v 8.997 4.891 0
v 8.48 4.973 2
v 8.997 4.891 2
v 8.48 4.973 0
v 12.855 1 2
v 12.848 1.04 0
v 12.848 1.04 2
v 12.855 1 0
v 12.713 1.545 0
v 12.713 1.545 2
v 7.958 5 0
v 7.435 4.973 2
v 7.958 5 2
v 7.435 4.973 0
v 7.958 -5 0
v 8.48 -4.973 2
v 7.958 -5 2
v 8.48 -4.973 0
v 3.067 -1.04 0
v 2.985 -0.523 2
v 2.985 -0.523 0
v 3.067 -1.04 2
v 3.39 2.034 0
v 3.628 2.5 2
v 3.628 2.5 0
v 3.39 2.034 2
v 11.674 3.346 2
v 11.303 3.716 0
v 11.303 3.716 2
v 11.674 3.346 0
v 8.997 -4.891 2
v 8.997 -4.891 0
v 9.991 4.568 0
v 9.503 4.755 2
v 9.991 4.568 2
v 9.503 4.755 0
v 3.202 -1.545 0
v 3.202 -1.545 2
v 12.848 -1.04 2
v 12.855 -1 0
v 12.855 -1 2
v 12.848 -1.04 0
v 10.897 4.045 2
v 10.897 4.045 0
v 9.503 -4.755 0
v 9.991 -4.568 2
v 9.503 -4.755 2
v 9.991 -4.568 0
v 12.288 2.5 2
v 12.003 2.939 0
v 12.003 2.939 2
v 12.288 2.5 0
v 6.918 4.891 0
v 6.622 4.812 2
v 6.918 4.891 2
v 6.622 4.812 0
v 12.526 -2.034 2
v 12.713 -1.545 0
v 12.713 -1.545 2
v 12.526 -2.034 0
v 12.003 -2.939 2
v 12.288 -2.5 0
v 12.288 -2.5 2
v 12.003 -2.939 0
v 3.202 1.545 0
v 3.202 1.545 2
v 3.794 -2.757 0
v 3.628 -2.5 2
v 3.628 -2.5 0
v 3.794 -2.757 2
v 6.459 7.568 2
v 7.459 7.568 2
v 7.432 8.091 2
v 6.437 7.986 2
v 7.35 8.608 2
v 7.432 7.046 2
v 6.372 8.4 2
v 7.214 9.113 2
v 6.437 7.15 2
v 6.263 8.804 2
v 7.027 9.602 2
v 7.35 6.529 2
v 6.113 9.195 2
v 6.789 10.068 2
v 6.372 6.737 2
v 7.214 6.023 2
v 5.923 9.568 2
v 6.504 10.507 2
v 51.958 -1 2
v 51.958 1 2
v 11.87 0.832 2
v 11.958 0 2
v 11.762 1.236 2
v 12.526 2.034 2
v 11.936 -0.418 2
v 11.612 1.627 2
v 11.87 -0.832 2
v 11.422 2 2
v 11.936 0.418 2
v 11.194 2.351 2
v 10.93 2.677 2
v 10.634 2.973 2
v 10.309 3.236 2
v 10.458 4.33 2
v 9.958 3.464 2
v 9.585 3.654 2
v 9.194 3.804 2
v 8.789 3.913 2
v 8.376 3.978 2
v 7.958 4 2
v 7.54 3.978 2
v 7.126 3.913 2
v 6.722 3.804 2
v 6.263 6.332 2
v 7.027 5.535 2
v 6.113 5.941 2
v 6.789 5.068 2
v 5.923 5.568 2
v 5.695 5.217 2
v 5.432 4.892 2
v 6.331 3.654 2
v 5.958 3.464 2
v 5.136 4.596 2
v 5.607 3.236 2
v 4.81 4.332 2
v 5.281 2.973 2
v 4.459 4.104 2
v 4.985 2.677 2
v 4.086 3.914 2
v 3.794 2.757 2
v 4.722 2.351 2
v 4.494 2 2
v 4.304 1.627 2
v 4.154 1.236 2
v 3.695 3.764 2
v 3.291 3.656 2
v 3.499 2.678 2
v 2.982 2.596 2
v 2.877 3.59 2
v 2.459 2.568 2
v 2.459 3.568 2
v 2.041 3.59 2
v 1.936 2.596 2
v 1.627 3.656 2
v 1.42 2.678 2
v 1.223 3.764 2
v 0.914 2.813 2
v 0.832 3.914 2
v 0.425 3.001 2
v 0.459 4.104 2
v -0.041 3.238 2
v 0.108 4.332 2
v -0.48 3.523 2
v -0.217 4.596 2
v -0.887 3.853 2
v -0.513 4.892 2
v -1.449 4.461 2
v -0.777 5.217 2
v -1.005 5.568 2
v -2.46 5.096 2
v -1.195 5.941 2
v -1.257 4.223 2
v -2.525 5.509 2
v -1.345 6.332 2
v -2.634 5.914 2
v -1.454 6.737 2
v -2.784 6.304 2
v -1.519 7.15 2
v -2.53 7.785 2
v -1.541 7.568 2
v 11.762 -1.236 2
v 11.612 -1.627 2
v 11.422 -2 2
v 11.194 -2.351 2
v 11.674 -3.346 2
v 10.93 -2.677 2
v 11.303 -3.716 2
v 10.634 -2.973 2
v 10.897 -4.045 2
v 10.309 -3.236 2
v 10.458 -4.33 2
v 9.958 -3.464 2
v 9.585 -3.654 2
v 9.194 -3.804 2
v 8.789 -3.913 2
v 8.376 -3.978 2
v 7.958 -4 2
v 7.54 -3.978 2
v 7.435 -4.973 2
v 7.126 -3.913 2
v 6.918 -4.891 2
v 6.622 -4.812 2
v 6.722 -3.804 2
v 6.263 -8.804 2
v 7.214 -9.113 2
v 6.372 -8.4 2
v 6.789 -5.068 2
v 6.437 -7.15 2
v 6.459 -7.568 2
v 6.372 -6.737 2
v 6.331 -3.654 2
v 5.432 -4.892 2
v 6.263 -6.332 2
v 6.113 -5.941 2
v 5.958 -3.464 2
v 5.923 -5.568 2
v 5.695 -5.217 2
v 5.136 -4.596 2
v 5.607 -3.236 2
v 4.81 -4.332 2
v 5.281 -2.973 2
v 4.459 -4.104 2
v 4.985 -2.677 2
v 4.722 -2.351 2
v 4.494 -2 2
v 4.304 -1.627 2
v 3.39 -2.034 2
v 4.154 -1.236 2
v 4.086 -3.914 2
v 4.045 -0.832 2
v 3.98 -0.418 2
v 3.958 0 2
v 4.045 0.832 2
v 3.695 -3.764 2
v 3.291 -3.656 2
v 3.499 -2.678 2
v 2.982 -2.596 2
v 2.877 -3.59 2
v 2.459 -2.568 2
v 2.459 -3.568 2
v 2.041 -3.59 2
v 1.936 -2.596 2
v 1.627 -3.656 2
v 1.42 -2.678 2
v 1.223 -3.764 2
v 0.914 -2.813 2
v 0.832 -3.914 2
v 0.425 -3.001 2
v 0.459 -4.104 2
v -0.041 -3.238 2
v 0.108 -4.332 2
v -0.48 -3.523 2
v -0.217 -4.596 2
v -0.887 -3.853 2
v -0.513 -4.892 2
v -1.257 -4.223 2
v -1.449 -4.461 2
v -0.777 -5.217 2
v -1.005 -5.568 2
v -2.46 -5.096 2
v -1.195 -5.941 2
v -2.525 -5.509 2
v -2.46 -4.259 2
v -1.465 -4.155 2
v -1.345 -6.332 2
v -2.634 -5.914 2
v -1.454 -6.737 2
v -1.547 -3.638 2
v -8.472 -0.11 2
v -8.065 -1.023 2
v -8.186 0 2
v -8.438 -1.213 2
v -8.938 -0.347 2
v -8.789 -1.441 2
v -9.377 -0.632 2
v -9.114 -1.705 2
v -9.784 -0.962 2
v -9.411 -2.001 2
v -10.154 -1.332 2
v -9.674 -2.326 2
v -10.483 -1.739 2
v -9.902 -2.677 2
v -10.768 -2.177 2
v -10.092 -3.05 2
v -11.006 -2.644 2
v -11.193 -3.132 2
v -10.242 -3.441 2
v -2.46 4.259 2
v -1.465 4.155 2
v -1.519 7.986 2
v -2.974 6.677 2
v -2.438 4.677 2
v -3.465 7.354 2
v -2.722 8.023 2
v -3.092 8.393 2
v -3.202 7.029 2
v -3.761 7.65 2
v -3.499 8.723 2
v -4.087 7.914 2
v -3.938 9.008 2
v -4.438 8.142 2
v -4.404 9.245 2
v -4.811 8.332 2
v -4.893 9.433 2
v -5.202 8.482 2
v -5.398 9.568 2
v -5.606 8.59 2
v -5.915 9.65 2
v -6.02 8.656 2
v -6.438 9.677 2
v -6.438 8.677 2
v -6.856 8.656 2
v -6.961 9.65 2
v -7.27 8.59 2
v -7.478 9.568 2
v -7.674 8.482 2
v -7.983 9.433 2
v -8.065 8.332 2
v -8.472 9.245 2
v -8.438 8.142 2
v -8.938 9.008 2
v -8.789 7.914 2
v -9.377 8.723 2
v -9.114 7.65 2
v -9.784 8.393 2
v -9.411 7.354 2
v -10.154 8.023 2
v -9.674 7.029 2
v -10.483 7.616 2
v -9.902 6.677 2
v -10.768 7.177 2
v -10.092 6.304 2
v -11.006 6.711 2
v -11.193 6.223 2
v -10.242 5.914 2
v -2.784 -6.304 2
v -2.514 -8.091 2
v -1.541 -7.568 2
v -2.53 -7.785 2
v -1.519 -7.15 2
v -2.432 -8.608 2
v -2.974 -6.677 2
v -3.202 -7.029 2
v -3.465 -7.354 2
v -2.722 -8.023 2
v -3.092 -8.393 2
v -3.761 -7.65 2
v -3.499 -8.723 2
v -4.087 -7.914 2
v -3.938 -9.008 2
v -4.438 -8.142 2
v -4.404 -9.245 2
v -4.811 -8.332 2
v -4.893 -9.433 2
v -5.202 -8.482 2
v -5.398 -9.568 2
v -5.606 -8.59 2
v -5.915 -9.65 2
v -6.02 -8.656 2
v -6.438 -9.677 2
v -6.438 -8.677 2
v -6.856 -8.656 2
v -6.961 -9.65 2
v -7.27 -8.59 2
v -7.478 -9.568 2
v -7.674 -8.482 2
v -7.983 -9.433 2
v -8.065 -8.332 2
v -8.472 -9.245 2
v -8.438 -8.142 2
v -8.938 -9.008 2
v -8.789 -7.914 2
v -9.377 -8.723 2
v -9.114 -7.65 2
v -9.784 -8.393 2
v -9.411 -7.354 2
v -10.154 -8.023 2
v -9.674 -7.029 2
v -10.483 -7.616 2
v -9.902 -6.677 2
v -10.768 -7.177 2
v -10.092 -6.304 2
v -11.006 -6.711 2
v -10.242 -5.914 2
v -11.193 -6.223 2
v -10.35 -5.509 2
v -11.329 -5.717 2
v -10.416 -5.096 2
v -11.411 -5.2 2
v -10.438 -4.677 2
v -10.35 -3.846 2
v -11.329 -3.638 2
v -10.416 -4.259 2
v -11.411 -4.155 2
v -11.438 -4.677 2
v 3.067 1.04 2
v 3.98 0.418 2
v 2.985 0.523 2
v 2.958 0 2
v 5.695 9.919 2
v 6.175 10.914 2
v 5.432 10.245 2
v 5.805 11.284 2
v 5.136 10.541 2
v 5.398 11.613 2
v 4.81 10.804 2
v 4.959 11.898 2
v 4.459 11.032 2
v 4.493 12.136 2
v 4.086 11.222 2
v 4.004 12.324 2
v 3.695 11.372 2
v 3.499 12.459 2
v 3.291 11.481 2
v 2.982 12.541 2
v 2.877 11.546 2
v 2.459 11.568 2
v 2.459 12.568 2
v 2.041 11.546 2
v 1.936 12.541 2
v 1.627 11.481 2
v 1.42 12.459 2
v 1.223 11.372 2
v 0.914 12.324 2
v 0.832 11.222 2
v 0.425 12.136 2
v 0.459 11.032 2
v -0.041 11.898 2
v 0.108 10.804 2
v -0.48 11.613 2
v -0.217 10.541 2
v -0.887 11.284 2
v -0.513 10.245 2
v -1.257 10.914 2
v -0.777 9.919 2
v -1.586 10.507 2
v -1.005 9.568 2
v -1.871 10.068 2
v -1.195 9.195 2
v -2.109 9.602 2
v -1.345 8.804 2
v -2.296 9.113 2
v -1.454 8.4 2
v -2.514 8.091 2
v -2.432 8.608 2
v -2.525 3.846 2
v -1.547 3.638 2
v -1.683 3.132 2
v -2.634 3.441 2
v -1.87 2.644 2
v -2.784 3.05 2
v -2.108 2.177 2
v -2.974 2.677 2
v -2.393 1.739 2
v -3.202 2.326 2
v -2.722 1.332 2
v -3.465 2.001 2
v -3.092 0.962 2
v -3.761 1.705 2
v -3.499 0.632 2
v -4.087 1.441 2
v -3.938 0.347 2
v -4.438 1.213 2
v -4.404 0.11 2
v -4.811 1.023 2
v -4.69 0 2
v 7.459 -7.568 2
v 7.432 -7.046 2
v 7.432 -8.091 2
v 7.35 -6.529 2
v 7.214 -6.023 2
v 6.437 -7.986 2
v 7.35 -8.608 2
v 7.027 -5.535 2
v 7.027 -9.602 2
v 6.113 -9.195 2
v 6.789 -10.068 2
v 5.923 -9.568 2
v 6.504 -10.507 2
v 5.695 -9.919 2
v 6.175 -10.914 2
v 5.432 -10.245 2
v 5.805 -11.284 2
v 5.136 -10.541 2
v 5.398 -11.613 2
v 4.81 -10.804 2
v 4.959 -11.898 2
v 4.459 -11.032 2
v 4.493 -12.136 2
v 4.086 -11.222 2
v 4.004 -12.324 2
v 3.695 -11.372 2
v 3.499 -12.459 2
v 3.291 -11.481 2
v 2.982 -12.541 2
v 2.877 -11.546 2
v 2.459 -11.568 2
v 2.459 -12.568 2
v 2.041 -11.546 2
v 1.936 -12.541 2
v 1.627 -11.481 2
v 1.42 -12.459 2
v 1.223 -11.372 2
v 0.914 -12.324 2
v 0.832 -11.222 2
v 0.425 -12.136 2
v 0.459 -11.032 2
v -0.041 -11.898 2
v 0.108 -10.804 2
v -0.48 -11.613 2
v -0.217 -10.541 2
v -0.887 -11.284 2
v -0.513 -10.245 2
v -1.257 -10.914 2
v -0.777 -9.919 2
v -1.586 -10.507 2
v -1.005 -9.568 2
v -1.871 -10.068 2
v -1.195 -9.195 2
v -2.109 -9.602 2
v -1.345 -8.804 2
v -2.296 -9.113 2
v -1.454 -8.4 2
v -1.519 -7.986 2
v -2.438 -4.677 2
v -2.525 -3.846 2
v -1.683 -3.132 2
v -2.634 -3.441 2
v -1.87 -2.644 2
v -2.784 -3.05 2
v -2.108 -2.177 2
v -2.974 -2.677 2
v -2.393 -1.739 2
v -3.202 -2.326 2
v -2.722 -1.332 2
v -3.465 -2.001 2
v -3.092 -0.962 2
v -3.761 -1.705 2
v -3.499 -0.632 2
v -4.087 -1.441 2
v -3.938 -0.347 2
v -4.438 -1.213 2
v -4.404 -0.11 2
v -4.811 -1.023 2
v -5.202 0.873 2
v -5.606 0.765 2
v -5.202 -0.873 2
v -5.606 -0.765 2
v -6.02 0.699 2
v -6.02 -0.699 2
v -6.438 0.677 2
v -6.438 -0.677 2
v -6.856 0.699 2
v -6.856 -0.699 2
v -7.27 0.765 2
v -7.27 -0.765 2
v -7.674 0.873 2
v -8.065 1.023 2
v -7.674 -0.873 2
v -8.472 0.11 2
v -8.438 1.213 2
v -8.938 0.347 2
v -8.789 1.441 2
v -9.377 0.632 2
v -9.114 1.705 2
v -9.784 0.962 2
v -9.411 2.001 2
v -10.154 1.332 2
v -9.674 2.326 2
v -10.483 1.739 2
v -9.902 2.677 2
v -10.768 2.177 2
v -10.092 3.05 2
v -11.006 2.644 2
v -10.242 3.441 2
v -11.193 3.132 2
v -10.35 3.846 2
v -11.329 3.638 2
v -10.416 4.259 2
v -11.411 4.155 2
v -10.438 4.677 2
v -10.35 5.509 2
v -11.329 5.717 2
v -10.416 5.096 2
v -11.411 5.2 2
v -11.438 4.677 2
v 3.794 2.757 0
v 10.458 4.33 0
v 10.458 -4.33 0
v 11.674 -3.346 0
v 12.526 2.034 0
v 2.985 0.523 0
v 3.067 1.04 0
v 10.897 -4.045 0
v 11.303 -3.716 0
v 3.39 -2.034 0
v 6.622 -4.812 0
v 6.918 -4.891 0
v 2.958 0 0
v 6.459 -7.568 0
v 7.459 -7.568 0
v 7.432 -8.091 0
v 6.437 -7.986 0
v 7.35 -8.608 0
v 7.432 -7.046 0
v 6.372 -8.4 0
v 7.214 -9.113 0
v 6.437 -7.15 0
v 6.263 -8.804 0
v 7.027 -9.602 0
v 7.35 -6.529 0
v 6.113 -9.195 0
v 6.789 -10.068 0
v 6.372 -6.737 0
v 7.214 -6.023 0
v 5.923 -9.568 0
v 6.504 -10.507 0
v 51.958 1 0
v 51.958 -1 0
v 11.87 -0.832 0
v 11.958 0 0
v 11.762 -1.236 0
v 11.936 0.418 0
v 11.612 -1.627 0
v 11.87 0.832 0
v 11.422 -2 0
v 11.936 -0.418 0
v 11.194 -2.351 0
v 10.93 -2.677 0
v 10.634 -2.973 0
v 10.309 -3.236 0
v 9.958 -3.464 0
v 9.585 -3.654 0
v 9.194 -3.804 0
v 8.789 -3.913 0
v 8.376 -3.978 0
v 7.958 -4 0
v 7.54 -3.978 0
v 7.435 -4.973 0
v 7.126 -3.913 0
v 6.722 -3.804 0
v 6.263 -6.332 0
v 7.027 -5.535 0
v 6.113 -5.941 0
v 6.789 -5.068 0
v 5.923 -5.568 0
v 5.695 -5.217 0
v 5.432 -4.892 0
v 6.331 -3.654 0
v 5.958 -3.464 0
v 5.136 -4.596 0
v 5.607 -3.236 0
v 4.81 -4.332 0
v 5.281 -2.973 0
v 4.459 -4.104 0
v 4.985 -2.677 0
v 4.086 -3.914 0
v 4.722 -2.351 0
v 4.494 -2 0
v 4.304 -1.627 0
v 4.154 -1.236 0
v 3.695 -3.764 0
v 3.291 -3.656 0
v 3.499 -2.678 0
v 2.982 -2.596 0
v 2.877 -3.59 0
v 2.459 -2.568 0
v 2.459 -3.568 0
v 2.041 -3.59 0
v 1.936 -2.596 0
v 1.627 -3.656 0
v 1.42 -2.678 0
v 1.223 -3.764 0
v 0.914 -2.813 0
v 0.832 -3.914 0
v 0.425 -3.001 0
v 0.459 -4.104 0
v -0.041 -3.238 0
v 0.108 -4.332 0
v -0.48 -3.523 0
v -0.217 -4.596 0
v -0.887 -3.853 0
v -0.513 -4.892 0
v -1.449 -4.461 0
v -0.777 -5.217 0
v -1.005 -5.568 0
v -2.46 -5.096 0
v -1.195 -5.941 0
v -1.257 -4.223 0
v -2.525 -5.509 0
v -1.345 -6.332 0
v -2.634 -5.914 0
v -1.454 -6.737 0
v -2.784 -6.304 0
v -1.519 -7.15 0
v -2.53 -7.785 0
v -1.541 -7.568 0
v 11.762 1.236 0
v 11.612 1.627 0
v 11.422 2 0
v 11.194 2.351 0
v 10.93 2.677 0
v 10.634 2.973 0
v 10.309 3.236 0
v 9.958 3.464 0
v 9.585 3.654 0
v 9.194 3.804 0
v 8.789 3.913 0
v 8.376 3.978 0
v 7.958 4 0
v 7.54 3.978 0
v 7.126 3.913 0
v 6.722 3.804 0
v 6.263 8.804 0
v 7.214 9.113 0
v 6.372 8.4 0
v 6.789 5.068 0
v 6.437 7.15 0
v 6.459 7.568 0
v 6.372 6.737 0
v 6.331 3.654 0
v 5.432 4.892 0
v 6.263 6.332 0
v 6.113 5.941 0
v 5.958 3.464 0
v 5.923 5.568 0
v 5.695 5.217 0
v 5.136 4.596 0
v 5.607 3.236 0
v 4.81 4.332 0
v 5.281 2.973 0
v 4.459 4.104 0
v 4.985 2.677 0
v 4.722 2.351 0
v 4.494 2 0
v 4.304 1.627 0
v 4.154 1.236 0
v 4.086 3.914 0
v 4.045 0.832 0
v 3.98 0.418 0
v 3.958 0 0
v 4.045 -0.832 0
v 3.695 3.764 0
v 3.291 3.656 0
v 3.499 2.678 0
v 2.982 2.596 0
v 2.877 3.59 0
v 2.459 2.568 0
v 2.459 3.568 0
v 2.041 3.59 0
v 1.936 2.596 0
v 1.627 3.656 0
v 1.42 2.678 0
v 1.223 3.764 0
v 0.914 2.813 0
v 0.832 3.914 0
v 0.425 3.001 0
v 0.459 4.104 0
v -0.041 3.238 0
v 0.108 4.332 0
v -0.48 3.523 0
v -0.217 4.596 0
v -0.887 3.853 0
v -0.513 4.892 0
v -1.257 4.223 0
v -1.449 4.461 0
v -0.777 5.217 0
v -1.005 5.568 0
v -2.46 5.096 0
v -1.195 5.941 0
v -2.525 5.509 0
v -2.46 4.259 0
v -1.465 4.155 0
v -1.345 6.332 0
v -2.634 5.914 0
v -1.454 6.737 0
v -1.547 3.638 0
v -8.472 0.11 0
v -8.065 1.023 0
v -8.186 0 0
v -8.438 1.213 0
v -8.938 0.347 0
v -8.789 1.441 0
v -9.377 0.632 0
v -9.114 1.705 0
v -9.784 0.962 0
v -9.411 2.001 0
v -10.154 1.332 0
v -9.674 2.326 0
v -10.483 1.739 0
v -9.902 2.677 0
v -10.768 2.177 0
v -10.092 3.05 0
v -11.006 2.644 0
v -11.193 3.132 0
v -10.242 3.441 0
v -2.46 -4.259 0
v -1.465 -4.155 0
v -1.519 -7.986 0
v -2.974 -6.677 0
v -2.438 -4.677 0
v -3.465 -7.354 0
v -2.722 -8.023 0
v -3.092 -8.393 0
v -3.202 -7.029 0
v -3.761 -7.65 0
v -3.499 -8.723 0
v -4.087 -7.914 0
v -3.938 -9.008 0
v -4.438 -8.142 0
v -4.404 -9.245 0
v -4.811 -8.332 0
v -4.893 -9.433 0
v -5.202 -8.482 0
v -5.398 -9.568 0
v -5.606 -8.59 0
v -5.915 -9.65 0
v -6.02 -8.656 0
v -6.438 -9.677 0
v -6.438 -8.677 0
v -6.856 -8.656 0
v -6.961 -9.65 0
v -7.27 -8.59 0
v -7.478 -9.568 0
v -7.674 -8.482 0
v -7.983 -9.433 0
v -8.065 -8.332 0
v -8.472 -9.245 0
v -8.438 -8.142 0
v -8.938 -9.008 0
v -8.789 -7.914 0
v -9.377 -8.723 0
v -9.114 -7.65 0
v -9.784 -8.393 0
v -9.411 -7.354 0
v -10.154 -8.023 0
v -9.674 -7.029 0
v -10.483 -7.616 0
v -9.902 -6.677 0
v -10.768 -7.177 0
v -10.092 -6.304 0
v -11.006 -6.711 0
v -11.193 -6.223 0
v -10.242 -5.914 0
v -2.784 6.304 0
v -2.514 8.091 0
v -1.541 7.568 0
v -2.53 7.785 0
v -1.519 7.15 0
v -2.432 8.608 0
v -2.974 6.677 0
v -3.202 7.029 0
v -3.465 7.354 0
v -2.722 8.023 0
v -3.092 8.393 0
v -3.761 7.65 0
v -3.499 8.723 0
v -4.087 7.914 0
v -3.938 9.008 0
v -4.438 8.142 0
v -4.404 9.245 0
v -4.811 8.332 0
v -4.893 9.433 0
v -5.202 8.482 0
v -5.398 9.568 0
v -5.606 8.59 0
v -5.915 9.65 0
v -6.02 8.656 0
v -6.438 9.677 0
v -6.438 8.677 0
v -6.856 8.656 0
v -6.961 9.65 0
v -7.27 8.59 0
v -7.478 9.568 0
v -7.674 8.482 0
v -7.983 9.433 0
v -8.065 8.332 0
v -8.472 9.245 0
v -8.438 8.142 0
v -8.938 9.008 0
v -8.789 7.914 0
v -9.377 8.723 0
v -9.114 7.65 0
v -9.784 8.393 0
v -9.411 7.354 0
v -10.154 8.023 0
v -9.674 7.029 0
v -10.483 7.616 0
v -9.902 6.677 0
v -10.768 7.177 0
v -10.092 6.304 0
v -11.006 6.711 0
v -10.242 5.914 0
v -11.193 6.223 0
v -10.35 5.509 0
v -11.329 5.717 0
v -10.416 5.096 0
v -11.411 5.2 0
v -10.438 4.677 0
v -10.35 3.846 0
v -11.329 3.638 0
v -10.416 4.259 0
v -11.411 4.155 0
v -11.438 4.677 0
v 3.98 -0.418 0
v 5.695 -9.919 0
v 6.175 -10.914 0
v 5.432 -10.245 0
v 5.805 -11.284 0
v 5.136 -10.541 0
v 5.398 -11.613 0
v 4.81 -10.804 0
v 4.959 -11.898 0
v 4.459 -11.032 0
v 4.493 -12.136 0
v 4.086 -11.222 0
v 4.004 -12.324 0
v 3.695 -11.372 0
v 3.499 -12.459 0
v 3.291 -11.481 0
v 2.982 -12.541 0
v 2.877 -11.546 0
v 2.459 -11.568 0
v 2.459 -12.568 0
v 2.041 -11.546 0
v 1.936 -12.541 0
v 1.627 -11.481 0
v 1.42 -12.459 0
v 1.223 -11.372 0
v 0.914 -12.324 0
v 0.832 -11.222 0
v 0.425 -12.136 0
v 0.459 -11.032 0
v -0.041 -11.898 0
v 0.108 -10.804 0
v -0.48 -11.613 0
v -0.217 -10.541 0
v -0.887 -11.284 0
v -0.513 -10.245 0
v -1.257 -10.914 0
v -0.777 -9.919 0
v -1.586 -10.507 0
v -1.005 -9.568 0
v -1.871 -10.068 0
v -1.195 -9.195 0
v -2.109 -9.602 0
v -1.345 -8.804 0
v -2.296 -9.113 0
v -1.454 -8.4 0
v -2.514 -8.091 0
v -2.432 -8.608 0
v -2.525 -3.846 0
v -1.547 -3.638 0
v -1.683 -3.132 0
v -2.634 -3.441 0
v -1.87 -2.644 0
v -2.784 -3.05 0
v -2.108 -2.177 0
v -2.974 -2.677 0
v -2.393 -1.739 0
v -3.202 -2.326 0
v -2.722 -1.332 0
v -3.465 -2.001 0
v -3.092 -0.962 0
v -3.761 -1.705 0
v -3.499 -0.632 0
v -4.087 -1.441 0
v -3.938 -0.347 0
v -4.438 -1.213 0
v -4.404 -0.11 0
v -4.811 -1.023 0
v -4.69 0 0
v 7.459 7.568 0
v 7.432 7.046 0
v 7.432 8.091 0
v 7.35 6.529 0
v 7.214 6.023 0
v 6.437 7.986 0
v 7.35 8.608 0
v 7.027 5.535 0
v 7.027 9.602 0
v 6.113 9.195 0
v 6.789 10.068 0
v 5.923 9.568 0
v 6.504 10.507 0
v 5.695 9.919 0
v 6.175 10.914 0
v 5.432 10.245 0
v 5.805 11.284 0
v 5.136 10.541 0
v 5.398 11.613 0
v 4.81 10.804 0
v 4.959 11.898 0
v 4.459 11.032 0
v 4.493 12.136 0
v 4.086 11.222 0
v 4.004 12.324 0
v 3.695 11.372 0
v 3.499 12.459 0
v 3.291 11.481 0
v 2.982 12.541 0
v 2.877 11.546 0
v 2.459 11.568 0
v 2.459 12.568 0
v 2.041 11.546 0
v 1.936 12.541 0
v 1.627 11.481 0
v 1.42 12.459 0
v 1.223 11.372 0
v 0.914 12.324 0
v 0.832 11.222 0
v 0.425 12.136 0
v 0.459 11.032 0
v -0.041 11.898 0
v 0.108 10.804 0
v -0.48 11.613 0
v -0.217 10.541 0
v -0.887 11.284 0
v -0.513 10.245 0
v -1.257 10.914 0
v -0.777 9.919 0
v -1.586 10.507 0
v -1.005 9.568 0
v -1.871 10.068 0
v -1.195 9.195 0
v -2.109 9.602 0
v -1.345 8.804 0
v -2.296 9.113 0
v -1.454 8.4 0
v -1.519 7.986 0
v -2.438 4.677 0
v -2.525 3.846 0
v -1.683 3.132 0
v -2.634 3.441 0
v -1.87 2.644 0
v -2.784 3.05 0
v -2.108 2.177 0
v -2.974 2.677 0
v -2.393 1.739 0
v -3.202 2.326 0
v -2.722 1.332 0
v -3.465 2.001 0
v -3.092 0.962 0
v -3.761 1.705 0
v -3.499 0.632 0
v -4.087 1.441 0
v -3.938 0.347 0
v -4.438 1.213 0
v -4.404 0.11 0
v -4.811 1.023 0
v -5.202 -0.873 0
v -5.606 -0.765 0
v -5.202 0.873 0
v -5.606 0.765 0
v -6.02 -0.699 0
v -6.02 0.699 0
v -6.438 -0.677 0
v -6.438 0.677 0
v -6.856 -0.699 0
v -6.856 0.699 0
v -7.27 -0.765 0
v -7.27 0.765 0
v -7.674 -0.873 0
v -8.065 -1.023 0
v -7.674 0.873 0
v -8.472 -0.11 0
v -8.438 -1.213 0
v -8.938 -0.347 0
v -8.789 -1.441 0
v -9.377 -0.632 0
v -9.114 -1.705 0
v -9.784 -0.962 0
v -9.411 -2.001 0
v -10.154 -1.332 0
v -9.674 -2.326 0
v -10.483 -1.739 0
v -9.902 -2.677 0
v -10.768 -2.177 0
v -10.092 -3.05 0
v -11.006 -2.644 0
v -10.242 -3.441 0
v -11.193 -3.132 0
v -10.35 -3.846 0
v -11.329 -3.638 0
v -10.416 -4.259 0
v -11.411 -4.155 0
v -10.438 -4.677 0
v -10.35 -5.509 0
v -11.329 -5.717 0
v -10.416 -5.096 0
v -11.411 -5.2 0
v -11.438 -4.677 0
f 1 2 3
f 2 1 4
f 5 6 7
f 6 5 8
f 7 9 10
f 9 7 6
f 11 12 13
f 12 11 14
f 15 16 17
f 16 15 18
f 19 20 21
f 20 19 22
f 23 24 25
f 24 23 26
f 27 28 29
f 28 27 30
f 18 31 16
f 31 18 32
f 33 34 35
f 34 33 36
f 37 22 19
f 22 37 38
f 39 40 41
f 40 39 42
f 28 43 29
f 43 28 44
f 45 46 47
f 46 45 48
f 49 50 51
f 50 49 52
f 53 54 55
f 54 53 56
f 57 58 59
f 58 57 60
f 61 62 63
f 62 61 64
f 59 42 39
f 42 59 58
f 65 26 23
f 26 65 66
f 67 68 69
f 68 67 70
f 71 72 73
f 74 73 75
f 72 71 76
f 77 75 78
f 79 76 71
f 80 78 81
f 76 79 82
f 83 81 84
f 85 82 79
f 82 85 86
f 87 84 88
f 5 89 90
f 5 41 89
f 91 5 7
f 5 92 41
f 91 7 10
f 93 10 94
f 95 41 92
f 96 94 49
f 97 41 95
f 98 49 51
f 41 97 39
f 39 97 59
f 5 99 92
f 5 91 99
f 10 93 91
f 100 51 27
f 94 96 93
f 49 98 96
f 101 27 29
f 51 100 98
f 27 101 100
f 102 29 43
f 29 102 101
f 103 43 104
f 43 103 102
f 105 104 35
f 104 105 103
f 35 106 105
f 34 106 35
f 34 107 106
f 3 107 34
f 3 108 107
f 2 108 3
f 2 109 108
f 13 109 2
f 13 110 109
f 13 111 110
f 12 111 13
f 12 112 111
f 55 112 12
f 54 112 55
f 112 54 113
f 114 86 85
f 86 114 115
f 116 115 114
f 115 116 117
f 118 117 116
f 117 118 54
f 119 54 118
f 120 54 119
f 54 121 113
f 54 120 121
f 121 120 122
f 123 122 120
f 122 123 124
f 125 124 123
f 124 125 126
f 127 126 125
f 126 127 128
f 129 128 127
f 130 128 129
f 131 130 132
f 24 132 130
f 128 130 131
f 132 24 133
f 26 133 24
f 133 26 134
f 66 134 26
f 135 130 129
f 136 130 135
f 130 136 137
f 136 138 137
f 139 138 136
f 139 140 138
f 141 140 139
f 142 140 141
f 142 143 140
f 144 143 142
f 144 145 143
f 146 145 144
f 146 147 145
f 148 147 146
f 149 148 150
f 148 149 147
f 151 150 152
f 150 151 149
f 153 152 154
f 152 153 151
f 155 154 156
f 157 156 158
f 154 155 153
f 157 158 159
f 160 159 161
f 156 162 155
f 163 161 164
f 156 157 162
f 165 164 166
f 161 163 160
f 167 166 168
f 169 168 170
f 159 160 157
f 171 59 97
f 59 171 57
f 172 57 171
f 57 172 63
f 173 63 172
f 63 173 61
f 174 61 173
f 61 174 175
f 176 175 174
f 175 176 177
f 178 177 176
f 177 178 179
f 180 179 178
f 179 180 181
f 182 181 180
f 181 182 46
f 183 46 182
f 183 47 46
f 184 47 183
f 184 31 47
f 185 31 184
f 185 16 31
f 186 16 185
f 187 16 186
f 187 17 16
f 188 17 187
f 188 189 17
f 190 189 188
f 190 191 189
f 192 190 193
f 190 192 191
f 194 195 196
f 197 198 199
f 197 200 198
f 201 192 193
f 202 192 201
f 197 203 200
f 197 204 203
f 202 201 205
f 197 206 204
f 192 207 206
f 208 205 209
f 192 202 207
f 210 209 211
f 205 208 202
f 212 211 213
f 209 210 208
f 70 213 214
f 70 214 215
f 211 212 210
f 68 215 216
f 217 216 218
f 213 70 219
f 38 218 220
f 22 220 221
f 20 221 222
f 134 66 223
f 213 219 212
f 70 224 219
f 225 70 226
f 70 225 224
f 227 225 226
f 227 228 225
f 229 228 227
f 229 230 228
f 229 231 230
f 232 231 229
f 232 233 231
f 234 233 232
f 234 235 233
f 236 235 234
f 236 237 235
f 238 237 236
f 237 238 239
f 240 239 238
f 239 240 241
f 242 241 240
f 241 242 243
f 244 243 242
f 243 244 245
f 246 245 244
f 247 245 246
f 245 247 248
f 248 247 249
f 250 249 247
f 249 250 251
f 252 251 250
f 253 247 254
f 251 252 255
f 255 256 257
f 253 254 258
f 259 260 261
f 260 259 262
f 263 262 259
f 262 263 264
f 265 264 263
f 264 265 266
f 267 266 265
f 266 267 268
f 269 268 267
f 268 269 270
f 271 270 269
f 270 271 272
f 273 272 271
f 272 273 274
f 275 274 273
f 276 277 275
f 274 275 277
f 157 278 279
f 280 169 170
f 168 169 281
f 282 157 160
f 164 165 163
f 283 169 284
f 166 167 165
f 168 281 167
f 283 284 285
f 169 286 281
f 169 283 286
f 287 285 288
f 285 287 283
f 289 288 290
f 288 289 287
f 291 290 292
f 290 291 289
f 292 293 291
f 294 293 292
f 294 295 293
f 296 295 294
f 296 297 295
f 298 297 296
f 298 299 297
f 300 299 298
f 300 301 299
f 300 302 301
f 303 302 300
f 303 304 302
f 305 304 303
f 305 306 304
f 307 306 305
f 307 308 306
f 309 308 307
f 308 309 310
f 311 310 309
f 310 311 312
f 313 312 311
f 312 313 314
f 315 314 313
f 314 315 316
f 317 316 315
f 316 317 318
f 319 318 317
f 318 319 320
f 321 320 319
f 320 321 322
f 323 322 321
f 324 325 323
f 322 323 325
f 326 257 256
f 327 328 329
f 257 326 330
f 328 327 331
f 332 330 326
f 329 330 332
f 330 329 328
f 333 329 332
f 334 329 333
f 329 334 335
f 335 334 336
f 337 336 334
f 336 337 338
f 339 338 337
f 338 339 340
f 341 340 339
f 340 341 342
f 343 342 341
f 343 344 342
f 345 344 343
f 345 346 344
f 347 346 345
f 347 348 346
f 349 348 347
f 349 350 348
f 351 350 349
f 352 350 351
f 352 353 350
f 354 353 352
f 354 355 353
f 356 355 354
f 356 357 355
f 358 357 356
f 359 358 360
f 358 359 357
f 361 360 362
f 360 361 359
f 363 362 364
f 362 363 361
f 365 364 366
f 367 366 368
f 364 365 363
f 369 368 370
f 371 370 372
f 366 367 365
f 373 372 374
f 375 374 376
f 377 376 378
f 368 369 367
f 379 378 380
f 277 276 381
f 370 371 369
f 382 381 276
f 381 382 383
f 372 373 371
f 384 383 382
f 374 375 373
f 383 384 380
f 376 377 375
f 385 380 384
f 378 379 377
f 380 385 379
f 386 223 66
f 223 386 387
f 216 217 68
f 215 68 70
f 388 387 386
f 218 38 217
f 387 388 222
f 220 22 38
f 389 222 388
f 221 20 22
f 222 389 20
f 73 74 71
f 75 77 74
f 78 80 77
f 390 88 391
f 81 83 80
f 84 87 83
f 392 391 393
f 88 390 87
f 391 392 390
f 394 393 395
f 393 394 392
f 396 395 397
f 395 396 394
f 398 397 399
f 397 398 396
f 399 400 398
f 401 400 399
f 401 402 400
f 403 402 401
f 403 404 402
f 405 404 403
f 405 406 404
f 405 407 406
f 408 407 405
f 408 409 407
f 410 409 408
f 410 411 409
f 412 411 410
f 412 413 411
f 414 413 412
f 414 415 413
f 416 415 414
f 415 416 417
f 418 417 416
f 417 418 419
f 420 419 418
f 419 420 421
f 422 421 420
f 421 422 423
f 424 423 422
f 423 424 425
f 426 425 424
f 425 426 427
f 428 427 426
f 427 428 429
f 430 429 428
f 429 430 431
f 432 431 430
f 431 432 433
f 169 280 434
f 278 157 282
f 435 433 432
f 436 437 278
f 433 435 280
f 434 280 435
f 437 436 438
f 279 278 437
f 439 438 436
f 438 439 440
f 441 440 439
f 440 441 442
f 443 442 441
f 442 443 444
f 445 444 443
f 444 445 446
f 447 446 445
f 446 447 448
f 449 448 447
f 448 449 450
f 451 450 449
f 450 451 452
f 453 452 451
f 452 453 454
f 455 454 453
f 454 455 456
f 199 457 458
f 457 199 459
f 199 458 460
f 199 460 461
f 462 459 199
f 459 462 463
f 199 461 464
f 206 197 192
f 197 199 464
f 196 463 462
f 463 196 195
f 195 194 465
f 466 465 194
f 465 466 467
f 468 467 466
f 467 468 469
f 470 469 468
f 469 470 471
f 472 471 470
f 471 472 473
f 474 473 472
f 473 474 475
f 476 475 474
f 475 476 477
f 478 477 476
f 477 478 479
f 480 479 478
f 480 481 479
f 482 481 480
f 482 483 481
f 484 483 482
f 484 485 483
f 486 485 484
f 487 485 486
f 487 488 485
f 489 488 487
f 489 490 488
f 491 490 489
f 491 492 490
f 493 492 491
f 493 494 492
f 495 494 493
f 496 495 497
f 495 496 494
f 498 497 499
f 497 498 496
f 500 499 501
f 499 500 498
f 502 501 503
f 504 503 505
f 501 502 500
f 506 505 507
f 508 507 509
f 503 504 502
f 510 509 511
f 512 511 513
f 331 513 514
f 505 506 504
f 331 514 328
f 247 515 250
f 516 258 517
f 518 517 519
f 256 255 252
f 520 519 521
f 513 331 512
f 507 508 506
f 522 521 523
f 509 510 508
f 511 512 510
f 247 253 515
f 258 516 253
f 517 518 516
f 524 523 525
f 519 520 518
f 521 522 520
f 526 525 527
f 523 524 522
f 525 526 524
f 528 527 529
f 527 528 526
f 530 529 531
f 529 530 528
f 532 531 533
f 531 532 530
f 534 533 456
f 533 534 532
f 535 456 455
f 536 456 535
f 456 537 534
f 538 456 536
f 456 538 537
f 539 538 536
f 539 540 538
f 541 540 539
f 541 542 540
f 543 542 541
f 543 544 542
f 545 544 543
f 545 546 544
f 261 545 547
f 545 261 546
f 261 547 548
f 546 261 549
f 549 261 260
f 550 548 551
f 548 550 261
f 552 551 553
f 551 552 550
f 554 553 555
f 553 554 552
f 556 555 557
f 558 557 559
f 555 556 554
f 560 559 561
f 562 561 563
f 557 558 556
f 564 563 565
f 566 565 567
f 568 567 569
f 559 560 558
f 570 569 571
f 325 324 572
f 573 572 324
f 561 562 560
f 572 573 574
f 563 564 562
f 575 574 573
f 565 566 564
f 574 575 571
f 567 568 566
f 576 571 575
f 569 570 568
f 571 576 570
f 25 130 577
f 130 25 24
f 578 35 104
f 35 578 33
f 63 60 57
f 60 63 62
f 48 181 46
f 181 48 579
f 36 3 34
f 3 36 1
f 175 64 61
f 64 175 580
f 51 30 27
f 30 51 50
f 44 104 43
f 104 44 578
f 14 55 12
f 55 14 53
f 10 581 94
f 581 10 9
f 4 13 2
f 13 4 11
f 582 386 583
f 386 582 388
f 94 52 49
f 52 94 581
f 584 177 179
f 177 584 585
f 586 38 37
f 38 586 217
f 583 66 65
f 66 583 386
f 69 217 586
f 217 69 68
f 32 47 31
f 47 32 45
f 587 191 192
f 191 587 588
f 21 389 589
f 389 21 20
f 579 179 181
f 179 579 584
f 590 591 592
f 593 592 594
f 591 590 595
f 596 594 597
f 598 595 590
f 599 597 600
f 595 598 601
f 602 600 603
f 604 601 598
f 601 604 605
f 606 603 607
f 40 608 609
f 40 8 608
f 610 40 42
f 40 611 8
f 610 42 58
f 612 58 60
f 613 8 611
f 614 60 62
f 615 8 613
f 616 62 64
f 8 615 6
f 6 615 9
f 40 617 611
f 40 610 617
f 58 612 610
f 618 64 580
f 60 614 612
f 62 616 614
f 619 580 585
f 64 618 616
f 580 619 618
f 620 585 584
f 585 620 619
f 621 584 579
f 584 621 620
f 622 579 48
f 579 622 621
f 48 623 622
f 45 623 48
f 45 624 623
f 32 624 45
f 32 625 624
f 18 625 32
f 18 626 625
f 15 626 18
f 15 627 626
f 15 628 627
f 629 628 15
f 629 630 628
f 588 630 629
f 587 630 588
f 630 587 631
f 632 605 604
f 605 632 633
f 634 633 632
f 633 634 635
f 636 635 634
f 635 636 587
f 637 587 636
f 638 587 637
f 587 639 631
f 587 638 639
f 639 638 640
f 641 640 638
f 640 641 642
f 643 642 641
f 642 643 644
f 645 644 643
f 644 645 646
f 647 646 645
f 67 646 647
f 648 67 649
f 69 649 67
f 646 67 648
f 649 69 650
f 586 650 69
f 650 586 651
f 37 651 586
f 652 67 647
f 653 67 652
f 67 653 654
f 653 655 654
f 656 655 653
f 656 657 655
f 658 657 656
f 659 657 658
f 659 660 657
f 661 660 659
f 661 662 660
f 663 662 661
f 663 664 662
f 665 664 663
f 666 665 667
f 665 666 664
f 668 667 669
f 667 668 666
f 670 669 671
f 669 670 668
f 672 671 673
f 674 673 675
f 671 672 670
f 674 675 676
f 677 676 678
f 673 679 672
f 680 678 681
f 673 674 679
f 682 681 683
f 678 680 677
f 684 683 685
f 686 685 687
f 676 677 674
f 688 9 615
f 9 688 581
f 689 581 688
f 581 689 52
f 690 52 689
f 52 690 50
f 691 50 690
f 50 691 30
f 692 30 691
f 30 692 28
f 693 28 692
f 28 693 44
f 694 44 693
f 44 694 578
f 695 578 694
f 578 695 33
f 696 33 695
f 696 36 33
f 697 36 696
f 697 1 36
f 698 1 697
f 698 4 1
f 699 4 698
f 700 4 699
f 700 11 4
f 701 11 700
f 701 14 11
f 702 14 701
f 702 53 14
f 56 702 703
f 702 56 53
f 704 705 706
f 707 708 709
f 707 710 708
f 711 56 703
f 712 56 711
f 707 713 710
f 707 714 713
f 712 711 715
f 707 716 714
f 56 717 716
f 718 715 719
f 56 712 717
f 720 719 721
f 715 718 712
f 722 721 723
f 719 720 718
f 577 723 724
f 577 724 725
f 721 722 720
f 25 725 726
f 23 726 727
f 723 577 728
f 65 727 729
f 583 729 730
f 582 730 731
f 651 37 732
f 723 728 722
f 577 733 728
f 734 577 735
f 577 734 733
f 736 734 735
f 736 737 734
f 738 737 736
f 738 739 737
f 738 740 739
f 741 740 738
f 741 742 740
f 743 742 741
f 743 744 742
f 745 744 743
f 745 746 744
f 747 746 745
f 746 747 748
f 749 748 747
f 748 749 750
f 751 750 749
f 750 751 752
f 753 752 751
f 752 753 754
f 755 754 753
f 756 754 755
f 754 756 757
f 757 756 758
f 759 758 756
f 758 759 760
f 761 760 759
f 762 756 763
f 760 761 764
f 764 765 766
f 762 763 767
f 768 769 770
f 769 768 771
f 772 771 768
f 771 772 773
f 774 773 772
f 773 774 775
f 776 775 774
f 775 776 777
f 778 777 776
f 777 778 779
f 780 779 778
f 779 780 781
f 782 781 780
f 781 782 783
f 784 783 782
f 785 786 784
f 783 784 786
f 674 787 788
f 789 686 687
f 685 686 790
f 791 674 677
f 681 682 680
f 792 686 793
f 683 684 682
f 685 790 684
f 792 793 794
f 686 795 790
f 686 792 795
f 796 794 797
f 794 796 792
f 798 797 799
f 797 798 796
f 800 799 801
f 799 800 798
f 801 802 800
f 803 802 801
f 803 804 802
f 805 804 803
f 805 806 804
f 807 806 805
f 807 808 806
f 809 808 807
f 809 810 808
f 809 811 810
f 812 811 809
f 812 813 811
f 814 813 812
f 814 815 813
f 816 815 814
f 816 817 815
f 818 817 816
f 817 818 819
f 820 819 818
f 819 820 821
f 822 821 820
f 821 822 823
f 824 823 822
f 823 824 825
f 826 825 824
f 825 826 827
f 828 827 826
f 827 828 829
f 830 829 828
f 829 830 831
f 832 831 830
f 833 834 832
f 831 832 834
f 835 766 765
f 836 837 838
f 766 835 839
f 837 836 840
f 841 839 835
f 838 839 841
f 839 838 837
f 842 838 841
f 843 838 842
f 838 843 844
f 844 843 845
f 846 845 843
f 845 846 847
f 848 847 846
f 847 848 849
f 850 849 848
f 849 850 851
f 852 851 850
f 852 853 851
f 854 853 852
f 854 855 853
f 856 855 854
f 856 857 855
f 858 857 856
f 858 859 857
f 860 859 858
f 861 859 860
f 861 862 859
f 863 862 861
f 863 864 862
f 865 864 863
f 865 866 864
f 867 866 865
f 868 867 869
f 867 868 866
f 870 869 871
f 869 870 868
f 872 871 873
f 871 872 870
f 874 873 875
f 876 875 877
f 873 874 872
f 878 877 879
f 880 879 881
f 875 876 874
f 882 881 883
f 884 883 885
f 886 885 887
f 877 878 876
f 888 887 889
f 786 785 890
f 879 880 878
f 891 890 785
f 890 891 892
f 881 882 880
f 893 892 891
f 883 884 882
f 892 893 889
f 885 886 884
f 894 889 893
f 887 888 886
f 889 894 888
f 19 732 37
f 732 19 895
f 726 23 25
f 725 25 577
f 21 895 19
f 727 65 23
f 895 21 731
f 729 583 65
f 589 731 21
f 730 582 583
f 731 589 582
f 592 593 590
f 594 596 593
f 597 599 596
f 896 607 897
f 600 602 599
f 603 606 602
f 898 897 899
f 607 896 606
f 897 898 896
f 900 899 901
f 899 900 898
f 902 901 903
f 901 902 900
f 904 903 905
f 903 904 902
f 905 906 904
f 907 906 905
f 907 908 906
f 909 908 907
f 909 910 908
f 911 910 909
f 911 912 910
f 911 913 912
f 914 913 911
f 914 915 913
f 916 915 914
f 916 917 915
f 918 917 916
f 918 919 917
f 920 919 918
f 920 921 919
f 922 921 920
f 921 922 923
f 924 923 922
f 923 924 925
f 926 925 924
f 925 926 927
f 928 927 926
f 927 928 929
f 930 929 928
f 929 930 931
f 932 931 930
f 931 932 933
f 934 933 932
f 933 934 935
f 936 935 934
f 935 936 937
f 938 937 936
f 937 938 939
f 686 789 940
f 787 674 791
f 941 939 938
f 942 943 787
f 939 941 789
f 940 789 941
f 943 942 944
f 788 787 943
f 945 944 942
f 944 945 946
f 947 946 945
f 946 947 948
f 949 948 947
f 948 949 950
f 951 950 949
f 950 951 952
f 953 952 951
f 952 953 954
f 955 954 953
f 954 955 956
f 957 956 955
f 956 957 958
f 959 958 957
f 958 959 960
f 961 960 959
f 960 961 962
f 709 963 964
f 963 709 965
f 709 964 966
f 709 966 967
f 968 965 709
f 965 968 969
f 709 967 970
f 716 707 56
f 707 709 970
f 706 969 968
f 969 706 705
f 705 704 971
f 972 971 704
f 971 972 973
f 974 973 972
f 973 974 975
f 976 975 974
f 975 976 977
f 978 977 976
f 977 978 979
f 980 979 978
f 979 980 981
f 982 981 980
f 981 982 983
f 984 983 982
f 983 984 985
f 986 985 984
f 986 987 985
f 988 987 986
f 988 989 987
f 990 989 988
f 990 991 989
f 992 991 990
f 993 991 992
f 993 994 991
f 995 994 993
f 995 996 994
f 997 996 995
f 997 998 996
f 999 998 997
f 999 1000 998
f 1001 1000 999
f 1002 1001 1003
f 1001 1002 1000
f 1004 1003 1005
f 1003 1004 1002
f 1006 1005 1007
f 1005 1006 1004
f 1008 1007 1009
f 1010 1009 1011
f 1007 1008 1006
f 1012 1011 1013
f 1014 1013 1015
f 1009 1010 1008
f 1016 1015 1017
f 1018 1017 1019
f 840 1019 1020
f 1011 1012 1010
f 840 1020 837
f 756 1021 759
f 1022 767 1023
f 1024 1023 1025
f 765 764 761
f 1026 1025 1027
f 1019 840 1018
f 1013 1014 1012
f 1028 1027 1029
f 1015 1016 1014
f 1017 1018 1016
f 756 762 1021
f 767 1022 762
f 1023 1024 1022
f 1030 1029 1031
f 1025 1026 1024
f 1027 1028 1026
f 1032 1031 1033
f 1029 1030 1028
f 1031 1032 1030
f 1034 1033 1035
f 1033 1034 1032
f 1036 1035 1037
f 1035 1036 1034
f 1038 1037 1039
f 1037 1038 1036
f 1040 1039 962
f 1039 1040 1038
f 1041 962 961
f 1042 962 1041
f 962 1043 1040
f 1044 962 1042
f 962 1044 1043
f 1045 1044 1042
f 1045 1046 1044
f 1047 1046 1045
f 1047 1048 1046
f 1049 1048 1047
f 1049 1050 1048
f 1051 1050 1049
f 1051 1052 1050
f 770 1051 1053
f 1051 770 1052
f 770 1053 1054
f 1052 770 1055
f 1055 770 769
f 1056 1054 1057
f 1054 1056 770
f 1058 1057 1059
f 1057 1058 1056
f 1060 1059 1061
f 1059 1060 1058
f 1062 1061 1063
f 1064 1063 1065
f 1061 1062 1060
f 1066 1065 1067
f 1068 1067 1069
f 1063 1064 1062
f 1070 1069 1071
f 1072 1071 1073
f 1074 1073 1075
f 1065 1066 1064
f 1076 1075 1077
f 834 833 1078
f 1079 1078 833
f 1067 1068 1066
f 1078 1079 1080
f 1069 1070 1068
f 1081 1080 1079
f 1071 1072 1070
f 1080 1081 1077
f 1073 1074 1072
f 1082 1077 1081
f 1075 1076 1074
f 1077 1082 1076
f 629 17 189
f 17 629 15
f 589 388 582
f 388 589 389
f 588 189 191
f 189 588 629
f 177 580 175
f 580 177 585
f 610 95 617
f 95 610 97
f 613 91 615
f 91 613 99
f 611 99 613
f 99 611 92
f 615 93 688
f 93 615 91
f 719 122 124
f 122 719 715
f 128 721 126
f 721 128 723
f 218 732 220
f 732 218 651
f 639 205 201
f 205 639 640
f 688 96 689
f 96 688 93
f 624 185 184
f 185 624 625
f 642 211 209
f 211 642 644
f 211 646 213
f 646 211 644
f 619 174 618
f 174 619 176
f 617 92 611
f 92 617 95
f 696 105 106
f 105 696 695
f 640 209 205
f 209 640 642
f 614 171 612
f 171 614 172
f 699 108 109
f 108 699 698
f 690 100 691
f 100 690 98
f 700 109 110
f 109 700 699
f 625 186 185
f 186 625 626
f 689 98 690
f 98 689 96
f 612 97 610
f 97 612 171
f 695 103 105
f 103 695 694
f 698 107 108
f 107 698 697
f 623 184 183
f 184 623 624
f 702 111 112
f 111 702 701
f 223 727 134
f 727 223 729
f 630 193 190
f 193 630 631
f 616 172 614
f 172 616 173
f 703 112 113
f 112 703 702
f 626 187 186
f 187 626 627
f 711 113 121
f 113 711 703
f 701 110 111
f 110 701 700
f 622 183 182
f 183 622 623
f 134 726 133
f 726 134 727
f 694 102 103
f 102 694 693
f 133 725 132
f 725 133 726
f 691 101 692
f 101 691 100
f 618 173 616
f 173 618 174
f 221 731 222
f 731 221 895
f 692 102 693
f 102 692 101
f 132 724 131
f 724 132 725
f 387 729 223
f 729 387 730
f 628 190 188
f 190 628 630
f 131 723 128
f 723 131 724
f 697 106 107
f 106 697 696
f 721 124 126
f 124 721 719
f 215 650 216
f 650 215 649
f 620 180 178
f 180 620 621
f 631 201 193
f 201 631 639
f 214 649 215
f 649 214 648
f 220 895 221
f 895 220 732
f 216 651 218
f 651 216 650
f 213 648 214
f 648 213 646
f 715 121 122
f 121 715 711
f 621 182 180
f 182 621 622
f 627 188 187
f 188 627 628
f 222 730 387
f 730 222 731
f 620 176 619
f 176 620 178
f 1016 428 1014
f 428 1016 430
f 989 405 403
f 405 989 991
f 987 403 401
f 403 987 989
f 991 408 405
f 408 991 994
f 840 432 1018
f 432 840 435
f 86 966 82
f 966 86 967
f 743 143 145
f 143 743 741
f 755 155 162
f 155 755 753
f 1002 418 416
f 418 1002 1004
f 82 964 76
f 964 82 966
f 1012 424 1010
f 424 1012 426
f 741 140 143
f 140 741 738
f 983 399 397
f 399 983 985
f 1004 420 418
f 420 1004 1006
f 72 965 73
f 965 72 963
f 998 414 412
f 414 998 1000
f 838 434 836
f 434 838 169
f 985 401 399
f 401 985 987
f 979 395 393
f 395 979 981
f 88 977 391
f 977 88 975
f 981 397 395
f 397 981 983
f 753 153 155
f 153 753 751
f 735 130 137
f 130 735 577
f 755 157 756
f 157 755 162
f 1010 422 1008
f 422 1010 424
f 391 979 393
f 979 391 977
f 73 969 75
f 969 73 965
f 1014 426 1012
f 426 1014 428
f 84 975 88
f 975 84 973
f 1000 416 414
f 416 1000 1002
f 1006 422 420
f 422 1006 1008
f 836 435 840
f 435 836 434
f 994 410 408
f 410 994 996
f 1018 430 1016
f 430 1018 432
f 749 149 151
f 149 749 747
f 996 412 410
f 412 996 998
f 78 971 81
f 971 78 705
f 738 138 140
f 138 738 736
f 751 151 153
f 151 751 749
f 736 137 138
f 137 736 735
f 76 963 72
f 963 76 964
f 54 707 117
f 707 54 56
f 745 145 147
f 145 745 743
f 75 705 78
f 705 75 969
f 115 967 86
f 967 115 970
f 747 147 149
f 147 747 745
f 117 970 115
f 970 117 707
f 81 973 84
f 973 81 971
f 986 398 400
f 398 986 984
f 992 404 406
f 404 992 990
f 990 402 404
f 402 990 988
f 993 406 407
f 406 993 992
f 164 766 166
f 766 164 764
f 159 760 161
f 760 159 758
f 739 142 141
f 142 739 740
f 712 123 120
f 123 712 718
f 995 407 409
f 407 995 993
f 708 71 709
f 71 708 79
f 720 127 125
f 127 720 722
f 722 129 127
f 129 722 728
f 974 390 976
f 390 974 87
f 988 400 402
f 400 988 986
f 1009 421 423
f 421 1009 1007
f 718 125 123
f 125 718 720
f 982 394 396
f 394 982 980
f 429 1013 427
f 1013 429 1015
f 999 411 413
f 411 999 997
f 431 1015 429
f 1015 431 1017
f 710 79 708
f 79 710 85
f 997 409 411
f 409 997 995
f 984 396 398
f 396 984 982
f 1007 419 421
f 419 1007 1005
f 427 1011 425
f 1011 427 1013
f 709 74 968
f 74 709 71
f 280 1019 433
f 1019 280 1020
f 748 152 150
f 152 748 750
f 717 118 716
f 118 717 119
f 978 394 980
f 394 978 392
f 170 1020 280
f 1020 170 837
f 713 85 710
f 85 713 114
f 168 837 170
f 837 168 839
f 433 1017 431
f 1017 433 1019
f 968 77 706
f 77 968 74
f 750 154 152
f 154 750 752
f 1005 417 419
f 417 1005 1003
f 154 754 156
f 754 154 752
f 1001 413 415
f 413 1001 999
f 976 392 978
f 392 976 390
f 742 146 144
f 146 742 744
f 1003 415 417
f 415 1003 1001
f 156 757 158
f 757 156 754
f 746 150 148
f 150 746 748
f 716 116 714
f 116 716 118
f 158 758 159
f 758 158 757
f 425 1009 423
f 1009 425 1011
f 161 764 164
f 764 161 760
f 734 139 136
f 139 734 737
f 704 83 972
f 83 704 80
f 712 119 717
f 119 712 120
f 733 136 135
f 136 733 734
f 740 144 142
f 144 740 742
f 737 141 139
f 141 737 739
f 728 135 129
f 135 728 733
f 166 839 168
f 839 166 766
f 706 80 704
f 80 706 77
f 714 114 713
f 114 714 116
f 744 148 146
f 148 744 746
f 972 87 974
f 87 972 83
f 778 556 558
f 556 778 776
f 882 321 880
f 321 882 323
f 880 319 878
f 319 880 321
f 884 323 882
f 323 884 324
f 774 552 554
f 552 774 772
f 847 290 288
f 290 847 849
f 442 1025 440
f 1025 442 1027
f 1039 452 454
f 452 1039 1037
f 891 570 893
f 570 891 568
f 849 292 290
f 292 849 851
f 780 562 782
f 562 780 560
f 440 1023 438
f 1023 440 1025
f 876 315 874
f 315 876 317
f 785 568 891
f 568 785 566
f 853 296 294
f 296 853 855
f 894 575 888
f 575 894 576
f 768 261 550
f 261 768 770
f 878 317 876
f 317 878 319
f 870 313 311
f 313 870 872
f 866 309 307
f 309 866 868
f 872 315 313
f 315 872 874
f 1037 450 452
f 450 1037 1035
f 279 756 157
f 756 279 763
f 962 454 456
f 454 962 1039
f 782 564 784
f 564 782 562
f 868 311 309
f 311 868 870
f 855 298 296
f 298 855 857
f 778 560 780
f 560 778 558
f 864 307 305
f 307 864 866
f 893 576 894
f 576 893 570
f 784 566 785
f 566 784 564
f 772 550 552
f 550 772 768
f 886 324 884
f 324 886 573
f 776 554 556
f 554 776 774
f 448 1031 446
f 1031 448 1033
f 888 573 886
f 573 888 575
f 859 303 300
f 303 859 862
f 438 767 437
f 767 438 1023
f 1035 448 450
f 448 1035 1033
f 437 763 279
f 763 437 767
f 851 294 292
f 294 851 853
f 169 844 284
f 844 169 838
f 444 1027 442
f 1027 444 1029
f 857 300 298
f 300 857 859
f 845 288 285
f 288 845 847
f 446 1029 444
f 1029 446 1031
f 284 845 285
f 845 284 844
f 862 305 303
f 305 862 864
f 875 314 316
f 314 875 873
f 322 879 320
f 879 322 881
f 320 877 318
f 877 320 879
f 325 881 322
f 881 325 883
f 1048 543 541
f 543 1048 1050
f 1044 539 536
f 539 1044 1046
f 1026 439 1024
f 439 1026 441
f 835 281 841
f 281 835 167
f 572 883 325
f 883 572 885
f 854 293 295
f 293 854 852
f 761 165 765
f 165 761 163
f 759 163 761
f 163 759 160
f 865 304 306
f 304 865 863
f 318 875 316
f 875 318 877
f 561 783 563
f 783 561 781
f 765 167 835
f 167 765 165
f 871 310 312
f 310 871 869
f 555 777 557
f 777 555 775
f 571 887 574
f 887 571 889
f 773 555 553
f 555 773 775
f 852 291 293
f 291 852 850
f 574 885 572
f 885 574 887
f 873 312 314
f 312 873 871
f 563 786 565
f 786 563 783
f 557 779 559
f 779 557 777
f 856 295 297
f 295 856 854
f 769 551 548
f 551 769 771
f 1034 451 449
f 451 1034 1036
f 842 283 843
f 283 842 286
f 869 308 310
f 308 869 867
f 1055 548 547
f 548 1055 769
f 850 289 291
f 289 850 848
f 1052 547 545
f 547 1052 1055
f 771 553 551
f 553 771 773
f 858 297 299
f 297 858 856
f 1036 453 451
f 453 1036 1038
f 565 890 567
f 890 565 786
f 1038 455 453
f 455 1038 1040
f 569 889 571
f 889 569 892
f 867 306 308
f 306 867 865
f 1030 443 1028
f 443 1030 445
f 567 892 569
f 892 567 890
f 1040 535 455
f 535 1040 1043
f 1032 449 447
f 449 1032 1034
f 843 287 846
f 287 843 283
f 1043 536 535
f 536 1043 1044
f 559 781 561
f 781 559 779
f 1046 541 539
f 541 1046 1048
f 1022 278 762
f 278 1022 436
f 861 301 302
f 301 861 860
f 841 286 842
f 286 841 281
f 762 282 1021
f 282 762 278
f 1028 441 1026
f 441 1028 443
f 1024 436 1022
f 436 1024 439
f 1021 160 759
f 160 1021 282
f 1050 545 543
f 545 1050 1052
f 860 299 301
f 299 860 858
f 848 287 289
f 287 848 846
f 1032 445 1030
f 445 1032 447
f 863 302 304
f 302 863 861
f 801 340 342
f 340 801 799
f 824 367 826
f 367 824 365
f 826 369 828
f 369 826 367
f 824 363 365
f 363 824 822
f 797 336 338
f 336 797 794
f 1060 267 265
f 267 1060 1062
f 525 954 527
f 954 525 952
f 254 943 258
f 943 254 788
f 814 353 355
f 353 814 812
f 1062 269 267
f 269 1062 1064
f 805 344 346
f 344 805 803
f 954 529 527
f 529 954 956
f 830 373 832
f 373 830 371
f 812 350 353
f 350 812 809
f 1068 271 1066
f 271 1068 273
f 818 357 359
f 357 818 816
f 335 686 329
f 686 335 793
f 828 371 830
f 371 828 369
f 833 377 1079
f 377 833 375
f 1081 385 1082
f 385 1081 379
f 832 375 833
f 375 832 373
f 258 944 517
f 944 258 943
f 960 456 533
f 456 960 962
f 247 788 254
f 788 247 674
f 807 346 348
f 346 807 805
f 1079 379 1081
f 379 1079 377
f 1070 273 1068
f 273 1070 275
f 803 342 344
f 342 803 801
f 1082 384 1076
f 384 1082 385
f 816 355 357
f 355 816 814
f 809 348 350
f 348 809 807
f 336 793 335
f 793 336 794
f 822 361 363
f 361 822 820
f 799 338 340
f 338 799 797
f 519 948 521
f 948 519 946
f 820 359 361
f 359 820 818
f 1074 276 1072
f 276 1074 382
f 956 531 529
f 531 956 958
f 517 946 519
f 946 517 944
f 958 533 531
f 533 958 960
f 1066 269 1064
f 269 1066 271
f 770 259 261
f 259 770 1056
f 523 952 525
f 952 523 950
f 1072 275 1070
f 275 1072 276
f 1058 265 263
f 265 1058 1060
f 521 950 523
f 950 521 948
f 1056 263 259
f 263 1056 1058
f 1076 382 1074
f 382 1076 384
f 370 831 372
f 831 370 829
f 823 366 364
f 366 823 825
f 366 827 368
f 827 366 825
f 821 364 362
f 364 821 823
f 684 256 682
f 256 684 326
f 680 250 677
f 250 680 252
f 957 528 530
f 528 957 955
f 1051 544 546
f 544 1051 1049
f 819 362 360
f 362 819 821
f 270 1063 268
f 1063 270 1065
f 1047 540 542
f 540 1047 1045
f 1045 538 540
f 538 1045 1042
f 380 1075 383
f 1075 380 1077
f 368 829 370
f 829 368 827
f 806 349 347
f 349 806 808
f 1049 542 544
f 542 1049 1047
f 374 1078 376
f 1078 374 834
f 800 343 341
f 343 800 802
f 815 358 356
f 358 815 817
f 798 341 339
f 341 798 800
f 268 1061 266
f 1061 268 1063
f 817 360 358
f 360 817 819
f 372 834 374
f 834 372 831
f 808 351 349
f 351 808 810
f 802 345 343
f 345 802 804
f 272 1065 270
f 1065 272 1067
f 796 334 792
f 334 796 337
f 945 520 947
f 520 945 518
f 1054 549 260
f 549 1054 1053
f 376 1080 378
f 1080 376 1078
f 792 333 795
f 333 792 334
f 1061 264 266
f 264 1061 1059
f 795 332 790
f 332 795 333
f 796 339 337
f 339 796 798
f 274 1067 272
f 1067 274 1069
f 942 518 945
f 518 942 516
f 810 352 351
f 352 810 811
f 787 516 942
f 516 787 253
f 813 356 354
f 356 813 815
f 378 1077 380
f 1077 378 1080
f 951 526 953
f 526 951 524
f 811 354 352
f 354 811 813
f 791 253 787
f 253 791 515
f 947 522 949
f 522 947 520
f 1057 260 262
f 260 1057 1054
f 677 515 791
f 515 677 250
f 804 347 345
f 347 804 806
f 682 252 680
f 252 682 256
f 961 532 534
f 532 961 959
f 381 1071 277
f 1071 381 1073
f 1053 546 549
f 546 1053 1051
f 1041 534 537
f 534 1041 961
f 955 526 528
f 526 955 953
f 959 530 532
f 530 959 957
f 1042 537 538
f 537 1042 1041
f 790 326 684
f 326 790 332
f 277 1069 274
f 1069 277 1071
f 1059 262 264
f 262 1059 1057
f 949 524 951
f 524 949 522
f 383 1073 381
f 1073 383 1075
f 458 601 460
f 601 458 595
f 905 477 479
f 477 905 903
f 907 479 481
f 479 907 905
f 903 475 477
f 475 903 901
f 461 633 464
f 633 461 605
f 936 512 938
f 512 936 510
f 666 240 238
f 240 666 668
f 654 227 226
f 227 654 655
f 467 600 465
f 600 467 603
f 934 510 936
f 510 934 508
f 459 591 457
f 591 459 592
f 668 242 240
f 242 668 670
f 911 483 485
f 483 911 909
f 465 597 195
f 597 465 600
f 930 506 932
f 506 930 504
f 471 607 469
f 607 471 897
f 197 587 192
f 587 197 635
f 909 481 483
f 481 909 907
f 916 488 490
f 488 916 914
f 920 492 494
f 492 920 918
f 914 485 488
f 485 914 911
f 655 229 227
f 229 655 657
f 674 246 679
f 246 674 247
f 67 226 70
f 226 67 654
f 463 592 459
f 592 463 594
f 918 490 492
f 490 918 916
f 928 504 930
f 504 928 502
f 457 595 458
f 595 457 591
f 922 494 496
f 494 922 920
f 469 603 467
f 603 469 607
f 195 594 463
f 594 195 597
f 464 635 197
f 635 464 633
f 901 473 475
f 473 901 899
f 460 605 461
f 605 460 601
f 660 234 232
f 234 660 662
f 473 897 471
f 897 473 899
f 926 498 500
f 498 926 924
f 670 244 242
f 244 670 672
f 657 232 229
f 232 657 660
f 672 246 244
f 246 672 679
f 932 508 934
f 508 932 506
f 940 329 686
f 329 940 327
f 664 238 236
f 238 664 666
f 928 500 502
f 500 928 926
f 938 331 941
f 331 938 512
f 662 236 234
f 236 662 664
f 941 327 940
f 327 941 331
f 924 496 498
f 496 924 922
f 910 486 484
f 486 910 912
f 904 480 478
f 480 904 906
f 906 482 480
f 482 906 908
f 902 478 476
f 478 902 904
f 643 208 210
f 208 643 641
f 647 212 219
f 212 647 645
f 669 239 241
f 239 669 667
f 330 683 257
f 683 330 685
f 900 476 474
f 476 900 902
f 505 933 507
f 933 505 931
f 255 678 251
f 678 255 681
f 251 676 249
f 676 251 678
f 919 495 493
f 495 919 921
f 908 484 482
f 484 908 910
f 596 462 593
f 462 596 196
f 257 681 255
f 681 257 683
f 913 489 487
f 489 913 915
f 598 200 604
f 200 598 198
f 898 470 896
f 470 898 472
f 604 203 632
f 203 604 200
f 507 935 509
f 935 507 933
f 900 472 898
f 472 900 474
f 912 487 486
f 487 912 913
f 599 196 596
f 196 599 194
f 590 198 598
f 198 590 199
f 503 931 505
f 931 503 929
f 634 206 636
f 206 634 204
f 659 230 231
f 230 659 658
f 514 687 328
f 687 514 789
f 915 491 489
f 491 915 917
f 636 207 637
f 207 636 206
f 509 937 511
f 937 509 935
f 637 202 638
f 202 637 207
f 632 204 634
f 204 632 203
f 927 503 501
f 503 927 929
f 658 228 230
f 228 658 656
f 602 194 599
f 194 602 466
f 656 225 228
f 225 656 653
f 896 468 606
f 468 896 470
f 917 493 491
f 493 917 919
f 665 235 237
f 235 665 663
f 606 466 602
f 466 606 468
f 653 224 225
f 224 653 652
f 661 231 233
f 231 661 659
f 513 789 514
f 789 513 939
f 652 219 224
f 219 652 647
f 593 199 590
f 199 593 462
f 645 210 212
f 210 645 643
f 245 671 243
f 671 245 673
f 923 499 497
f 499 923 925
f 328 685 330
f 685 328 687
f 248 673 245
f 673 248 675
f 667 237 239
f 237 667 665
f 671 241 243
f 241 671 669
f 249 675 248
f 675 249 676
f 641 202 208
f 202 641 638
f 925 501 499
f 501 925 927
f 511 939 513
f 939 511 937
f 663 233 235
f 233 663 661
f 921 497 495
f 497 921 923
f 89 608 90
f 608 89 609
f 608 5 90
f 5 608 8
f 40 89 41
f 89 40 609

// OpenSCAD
$fn=60;

diameter = 10;
thickness = 2;
rings = 5;
length = 40;
overlap = 0;

pi = 3.141592;
epsilon = 0.1;

module ring(diameter,thickness)
{
    difference()
    {
        cylinder(d=diameter, h=thickness);
        translate([0, 0, -epsilon / 2]) cylinder(d=diameter - thickness, h=thickness + epsilon);
    }
}

union()
{
    for ( i = [0 : rings - 1] )
    {
        rotate(360 / rings * i)
        {
            translate([diameter * rings / pi / 2 - overlap, 0, 0])
            {
                ring(diameter,thickness);
            }
        }
    }
    translate([diameter / 2 + diameter * rings / pi / 2 - thickness / 2 - overlap, -thickness / 2, 0]) cube([length,thickness,thickness]);
}
